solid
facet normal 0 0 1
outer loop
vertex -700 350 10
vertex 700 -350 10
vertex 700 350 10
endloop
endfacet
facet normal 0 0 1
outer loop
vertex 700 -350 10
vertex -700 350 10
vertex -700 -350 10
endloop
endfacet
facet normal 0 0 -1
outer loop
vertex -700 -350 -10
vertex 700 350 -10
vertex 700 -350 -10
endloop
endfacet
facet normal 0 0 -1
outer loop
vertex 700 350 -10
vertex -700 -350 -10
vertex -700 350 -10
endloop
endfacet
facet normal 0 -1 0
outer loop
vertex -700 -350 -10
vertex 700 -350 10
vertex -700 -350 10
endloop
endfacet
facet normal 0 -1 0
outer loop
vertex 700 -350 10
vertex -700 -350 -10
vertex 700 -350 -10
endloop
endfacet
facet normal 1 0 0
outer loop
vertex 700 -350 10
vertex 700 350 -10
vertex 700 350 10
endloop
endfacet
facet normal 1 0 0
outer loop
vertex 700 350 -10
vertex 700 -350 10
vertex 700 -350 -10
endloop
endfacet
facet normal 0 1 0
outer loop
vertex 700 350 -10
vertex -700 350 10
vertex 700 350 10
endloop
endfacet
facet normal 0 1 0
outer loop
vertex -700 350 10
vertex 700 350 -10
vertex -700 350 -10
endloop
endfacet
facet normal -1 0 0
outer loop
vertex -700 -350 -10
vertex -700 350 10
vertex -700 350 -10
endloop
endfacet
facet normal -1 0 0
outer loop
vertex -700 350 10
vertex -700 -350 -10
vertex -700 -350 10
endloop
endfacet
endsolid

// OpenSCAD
/** table-plate 160x80, 2cm thickness, millimeters, centered at origin */

cube( size=[1400, 700, 20], center=true );
